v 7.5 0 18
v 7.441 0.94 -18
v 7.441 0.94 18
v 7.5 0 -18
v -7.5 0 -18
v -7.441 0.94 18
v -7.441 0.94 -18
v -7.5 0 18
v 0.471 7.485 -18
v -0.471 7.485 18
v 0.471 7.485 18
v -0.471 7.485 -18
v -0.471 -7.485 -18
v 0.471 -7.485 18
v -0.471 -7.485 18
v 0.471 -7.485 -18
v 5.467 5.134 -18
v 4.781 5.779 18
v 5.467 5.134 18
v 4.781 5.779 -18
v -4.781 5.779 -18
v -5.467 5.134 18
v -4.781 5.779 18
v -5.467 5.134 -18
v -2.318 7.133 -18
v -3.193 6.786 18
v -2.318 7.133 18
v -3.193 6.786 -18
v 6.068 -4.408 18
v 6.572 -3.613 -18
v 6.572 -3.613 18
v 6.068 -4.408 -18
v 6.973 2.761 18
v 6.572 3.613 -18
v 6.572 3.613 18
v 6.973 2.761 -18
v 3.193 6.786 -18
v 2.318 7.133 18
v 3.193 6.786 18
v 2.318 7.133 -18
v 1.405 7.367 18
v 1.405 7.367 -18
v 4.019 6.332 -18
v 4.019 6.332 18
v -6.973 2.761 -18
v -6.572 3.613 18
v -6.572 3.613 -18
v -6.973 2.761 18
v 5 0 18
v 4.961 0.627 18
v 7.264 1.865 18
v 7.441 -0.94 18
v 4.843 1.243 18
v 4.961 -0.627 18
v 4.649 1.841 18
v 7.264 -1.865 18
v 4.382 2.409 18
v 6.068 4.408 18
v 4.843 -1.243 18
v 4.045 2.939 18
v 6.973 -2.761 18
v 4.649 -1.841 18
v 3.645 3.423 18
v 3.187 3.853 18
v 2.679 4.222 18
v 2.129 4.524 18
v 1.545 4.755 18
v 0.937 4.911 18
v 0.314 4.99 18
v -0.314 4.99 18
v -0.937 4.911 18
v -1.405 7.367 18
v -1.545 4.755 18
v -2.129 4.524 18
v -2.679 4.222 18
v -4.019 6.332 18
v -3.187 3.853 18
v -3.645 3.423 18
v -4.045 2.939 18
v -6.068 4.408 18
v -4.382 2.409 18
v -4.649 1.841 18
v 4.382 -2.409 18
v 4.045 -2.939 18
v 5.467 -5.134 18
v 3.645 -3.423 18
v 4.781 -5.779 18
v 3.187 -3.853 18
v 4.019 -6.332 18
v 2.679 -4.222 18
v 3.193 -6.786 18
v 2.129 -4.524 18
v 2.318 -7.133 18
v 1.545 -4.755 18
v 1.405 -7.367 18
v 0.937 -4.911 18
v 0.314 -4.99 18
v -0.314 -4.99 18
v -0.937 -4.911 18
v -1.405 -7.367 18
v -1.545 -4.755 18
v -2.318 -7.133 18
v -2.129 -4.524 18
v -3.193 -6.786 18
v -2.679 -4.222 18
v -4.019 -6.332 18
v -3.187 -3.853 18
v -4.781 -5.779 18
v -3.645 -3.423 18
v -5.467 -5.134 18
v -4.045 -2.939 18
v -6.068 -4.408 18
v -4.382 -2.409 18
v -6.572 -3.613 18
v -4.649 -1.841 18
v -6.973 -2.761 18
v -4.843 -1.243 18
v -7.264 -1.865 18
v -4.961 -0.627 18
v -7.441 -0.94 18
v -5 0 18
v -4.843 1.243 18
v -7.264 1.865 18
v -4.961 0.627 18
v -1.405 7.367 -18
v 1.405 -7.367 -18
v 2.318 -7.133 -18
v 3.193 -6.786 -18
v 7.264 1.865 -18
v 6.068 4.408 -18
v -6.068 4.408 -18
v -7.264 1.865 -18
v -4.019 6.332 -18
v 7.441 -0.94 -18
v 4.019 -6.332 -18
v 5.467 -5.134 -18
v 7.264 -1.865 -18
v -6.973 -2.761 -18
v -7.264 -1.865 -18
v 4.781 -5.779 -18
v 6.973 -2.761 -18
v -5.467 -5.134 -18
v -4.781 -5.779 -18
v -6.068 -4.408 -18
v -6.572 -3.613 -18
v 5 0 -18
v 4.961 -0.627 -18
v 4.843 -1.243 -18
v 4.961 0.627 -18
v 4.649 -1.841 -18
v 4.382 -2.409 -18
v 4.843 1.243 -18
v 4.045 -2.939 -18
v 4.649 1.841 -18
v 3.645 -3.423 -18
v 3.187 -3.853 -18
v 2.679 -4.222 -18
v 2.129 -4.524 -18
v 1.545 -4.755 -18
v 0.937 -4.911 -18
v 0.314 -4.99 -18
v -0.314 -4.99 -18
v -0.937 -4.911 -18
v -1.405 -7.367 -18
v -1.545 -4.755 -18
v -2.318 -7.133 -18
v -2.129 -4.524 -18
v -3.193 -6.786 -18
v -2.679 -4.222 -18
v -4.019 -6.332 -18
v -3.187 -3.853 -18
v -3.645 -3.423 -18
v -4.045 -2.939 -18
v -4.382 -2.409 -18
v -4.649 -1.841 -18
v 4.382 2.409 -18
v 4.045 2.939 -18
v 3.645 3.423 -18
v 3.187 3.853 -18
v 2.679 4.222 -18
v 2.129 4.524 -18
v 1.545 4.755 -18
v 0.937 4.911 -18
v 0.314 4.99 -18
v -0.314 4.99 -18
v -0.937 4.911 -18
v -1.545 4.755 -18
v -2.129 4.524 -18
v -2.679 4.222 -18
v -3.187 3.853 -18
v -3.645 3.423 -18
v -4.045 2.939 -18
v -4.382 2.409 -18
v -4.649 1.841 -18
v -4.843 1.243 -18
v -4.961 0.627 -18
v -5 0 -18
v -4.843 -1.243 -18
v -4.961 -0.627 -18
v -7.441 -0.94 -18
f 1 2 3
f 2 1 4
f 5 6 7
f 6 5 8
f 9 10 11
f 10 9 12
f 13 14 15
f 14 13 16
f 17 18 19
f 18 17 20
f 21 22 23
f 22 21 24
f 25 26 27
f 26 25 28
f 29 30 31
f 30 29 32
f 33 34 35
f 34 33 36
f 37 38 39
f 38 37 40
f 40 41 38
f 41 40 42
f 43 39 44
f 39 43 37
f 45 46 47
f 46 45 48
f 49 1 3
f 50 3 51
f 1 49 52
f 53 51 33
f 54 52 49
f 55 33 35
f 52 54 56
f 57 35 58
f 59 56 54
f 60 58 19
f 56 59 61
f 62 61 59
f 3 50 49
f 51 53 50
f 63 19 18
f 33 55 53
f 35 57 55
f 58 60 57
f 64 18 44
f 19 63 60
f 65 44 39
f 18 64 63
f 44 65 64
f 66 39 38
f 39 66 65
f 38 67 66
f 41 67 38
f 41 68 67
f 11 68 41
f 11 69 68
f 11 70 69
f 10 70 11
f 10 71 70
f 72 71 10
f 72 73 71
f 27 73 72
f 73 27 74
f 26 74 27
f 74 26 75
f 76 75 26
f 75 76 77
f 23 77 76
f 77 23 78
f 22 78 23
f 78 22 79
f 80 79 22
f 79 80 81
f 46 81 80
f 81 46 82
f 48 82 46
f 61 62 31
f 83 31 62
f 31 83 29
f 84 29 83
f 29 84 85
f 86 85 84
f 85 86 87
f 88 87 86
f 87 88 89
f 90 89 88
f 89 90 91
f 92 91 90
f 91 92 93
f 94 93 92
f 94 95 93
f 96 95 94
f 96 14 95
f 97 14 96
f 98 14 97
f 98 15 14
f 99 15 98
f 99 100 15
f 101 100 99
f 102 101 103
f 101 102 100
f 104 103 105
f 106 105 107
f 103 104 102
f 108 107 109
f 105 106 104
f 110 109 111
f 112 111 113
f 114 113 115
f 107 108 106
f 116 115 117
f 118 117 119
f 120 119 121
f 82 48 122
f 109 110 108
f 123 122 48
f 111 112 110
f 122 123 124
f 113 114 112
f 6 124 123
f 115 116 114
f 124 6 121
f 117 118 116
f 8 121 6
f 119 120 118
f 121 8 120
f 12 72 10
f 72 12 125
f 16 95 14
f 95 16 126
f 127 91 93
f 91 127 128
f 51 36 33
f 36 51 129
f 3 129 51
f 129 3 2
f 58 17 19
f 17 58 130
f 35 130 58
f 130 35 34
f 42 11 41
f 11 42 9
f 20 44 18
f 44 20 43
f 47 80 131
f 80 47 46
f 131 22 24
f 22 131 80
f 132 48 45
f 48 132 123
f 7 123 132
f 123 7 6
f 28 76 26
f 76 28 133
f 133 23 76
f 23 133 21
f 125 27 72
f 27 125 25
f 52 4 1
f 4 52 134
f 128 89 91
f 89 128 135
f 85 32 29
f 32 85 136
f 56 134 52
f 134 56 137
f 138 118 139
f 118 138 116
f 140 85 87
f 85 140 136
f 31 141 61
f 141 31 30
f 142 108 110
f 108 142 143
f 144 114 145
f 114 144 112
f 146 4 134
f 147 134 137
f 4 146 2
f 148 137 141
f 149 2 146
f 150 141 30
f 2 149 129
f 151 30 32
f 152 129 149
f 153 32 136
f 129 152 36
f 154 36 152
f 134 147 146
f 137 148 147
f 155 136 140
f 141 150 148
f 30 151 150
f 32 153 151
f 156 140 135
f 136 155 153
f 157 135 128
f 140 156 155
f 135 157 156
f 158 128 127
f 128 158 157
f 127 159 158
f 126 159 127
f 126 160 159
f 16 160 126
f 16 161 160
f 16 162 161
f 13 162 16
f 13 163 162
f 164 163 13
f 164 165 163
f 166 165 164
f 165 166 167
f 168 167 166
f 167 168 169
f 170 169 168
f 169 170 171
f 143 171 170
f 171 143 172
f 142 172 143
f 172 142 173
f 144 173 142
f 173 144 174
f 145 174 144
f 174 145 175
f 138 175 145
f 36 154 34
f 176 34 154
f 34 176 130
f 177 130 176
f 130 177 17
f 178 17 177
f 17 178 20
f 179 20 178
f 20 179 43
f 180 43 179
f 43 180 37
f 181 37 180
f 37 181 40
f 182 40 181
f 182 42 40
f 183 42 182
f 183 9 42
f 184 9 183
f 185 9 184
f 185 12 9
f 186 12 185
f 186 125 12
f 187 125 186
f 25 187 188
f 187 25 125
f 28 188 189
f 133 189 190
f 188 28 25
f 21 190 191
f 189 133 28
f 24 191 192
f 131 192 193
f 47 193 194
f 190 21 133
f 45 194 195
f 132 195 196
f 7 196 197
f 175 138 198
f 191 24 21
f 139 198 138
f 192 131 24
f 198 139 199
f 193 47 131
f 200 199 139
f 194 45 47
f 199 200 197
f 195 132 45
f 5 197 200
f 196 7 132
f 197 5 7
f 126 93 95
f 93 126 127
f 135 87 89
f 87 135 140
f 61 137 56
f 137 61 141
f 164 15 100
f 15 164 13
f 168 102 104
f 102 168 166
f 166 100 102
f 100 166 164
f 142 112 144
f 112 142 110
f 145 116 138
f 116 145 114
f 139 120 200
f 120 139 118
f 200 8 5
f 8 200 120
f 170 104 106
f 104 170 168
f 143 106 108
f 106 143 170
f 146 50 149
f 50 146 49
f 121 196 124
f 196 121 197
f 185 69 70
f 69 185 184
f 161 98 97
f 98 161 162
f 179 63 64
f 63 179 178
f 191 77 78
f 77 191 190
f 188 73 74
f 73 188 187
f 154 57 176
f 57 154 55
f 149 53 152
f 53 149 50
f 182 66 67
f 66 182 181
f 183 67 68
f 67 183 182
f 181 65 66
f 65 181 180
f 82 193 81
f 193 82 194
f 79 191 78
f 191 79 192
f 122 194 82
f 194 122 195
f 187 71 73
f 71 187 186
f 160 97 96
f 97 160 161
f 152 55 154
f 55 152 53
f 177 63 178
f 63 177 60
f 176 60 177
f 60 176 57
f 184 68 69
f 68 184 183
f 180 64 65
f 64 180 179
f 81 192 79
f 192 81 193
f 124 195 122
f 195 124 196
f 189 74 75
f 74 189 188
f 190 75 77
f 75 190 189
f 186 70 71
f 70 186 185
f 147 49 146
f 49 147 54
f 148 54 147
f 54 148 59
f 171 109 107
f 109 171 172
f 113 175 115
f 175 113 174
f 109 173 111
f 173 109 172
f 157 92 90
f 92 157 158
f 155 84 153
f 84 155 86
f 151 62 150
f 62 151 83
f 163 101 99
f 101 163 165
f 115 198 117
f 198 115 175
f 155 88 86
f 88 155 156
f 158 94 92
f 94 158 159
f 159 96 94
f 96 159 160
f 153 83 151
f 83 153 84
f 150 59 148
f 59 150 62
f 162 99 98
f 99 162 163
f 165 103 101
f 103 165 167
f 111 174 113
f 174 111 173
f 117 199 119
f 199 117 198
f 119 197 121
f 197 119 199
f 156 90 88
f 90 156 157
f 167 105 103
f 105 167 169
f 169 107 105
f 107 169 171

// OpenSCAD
$fn = 50;


difference() {
	union() {
		translate(v = [0, 0, -18.0000000000]) {
			cylinder(h = 36, r = 7.5000000000);
		}
	}
	union() {
		translate(v = [0, 0, -100.0000000000]) {
			cylinder(h = 200, r = 5.0000000000);
		}
	}
}
